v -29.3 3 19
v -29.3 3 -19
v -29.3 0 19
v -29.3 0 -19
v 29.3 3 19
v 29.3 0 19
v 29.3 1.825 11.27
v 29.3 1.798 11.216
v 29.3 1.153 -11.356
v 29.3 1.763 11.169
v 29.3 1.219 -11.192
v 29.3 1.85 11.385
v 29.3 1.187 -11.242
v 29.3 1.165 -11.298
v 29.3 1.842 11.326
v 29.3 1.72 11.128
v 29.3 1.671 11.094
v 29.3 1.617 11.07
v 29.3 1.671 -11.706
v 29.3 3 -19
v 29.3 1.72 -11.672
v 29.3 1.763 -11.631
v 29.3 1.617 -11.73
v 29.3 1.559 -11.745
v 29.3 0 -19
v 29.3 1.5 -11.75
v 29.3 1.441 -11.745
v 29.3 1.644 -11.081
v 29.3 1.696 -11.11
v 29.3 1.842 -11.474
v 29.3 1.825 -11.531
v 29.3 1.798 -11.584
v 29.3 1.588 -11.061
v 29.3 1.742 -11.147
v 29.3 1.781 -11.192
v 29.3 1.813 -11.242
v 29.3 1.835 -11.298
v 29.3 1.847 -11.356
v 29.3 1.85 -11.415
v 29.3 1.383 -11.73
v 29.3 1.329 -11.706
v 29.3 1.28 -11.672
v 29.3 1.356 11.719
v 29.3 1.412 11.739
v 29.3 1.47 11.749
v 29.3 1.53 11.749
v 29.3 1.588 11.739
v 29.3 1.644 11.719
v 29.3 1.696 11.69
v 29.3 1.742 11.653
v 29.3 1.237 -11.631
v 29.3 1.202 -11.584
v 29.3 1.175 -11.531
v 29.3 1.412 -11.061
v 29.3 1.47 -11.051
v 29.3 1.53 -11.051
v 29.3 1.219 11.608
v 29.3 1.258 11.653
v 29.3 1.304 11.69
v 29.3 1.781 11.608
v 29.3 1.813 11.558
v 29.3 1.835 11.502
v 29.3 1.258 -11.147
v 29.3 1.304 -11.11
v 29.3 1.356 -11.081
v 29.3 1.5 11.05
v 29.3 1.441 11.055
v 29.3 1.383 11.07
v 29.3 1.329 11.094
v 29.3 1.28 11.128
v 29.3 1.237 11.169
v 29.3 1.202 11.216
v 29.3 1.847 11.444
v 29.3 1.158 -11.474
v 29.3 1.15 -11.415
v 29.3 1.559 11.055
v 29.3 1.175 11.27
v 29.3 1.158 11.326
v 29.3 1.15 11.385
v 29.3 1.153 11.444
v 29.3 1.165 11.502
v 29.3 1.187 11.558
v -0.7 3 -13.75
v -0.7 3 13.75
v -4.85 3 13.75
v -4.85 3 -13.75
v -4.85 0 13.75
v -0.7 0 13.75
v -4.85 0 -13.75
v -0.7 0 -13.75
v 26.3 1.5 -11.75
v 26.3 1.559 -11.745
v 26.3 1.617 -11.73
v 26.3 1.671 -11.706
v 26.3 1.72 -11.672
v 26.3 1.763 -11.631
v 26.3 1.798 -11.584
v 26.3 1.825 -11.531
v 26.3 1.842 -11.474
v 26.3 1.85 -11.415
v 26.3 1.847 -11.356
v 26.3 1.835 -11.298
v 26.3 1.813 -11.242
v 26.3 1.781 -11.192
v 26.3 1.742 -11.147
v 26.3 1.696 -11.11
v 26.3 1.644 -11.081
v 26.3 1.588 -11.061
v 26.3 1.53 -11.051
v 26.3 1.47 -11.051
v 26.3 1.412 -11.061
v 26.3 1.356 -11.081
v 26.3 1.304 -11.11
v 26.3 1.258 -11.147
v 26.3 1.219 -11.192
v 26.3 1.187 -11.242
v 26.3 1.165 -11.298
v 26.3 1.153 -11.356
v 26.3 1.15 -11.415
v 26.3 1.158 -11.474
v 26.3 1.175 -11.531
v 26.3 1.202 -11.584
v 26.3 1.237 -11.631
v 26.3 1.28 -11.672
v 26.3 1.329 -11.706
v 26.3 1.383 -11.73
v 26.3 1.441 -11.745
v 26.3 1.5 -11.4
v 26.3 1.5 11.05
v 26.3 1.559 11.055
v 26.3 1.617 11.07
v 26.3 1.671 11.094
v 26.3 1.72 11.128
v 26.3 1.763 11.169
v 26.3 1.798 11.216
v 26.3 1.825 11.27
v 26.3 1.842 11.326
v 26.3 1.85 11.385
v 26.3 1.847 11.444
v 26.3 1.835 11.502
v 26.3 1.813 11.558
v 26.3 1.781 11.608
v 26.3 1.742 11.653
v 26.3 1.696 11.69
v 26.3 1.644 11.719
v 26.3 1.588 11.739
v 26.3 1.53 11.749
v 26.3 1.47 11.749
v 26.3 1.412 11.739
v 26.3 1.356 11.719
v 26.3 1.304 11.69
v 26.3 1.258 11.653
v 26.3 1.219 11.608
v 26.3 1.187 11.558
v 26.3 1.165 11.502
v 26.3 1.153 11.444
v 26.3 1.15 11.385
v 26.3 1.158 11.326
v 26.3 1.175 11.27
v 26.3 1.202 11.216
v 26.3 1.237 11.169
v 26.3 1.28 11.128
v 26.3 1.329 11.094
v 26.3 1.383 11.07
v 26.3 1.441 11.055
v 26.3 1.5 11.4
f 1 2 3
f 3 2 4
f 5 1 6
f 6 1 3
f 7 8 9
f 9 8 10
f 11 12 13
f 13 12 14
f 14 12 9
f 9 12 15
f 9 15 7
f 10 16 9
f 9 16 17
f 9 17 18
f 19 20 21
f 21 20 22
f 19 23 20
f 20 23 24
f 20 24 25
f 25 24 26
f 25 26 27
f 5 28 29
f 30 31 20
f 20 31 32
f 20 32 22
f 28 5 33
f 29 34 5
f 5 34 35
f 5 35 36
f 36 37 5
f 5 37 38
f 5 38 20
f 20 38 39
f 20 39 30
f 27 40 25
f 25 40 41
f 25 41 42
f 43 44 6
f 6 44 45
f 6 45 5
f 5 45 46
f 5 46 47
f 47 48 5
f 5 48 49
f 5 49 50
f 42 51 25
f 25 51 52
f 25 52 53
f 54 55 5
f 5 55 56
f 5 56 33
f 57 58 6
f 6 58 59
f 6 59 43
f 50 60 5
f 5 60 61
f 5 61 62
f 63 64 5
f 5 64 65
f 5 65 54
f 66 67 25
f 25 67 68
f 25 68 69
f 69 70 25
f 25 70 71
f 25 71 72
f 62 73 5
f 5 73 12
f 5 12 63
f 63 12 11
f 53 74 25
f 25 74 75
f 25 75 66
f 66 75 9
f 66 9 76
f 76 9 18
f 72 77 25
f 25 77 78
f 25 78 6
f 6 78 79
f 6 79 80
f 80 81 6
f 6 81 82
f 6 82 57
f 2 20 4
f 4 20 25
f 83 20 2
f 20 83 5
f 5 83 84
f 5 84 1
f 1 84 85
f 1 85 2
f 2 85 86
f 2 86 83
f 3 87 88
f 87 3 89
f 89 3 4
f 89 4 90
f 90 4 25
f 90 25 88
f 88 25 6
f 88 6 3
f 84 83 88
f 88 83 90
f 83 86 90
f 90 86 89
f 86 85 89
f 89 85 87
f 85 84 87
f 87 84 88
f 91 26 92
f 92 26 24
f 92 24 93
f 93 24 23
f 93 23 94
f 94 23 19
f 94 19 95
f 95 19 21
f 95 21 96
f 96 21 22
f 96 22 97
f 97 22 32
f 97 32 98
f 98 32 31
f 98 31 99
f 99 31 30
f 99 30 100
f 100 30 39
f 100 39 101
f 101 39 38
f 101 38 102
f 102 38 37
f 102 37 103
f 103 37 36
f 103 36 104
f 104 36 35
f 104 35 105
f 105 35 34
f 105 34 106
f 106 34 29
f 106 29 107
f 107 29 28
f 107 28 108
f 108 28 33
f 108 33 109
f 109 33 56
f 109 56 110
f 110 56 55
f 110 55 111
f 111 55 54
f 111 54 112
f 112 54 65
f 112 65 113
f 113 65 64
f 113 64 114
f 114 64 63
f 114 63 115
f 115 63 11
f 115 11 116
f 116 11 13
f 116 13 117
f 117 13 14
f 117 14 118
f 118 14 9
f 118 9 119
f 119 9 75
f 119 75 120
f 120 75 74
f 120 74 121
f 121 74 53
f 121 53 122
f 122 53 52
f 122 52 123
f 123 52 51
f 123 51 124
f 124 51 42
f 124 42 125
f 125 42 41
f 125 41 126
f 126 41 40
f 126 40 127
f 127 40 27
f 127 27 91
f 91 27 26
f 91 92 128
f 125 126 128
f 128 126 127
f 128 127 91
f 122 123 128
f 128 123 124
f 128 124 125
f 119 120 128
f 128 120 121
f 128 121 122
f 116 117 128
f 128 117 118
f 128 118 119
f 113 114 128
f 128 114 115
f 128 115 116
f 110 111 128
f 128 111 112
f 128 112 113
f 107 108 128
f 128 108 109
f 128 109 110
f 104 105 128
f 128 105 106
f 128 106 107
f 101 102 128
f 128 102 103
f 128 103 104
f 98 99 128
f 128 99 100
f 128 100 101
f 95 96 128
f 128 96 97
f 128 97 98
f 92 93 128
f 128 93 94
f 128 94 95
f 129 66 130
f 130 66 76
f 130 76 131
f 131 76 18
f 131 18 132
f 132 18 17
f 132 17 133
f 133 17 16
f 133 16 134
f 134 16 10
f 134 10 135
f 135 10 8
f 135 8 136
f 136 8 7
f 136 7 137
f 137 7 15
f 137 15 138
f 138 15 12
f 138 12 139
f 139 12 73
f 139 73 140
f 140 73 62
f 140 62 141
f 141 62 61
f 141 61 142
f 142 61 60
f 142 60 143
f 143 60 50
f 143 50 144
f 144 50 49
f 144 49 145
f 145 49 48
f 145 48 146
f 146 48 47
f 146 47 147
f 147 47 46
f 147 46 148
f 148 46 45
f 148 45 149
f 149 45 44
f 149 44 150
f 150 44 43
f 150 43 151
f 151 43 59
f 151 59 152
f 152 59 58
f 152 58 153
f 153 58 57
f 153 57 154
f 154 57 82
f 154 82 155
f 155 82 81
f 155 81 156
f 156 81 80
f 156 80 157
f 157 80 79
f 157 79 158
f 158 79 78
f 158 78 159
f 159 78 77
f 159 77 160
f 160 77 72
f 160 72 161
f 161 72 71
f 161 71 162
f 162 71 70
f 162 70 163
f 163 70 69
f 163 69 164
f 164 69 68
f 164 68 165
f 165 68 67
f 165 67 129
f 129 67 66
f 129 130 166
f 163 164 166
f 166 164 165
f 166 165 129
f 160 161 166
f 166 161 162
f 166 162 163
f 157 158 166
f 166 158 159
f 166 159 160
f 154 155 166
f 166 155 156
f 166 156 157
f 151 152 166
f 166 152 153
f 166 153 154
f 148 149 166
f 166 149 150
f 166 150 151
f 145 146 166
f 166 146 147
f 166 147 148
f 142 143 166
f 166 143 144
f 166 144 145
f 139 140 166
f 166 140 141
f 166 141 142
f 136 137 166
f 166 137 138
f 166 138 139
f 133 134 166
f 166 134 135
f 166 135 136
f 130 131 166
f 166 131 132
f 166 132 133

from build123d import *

# Parameters (mm, degrees)
SKETCH_1_W          = 58.6
SKETCH_1_H          = 38
EXTRUDE_1_DEPTH     = 3
SKETCH_2_W          = 4.15
SKETCH_2_H          = 27.5
CUT_EXTRUDE_1_DEPTH = 36.049821683
SKETCH_3_R          = 0.35
CUT_EXTRUDE_2_DEPTH = 3


with BuildPart() as part:
    # 草图1 → 凸台-拉伸1 (new body)
    with BuildSketch(Plane(origin=(0, 0, 0), x_dir=(1, 0, 0), z_dir=(0, 1, 0))):
        Rectangle(SKETCH_1_W, SKETCH_1_H)
    extrude(amount=EXTRUDE_1_DEPTH)

    # 草图2 → 切除-拉伸1 (cut, through all)
    with BuildSketch(Plane.XZ):
        with Locations((-2.775, 0)):
            Rectangle(SKETCH_2_W, SKETCH_2_H)
    extrude(amount=-CUT_EXTRUDE_1_DEPTH, mode=Mode.SUBTRACT)

    # 草图3 → 切除-拉伸2 (cut)
    with BuildSketch(Plane(origin=(29.3, 0, 0), x_dir=(0, 0, -1), z_dir=(1, 0, 0))):
        with Locations((-11.4, 1.5)):
            Circle(SKETCH_3_R)
        with Locations((11.4, 1.5)):
            Circle(SKETCH_3_R)
    extrude(amount=-CUT_EXTRUDE_2_DEPTH, mode=Mode.SUBTRACT)


solid = part.part
